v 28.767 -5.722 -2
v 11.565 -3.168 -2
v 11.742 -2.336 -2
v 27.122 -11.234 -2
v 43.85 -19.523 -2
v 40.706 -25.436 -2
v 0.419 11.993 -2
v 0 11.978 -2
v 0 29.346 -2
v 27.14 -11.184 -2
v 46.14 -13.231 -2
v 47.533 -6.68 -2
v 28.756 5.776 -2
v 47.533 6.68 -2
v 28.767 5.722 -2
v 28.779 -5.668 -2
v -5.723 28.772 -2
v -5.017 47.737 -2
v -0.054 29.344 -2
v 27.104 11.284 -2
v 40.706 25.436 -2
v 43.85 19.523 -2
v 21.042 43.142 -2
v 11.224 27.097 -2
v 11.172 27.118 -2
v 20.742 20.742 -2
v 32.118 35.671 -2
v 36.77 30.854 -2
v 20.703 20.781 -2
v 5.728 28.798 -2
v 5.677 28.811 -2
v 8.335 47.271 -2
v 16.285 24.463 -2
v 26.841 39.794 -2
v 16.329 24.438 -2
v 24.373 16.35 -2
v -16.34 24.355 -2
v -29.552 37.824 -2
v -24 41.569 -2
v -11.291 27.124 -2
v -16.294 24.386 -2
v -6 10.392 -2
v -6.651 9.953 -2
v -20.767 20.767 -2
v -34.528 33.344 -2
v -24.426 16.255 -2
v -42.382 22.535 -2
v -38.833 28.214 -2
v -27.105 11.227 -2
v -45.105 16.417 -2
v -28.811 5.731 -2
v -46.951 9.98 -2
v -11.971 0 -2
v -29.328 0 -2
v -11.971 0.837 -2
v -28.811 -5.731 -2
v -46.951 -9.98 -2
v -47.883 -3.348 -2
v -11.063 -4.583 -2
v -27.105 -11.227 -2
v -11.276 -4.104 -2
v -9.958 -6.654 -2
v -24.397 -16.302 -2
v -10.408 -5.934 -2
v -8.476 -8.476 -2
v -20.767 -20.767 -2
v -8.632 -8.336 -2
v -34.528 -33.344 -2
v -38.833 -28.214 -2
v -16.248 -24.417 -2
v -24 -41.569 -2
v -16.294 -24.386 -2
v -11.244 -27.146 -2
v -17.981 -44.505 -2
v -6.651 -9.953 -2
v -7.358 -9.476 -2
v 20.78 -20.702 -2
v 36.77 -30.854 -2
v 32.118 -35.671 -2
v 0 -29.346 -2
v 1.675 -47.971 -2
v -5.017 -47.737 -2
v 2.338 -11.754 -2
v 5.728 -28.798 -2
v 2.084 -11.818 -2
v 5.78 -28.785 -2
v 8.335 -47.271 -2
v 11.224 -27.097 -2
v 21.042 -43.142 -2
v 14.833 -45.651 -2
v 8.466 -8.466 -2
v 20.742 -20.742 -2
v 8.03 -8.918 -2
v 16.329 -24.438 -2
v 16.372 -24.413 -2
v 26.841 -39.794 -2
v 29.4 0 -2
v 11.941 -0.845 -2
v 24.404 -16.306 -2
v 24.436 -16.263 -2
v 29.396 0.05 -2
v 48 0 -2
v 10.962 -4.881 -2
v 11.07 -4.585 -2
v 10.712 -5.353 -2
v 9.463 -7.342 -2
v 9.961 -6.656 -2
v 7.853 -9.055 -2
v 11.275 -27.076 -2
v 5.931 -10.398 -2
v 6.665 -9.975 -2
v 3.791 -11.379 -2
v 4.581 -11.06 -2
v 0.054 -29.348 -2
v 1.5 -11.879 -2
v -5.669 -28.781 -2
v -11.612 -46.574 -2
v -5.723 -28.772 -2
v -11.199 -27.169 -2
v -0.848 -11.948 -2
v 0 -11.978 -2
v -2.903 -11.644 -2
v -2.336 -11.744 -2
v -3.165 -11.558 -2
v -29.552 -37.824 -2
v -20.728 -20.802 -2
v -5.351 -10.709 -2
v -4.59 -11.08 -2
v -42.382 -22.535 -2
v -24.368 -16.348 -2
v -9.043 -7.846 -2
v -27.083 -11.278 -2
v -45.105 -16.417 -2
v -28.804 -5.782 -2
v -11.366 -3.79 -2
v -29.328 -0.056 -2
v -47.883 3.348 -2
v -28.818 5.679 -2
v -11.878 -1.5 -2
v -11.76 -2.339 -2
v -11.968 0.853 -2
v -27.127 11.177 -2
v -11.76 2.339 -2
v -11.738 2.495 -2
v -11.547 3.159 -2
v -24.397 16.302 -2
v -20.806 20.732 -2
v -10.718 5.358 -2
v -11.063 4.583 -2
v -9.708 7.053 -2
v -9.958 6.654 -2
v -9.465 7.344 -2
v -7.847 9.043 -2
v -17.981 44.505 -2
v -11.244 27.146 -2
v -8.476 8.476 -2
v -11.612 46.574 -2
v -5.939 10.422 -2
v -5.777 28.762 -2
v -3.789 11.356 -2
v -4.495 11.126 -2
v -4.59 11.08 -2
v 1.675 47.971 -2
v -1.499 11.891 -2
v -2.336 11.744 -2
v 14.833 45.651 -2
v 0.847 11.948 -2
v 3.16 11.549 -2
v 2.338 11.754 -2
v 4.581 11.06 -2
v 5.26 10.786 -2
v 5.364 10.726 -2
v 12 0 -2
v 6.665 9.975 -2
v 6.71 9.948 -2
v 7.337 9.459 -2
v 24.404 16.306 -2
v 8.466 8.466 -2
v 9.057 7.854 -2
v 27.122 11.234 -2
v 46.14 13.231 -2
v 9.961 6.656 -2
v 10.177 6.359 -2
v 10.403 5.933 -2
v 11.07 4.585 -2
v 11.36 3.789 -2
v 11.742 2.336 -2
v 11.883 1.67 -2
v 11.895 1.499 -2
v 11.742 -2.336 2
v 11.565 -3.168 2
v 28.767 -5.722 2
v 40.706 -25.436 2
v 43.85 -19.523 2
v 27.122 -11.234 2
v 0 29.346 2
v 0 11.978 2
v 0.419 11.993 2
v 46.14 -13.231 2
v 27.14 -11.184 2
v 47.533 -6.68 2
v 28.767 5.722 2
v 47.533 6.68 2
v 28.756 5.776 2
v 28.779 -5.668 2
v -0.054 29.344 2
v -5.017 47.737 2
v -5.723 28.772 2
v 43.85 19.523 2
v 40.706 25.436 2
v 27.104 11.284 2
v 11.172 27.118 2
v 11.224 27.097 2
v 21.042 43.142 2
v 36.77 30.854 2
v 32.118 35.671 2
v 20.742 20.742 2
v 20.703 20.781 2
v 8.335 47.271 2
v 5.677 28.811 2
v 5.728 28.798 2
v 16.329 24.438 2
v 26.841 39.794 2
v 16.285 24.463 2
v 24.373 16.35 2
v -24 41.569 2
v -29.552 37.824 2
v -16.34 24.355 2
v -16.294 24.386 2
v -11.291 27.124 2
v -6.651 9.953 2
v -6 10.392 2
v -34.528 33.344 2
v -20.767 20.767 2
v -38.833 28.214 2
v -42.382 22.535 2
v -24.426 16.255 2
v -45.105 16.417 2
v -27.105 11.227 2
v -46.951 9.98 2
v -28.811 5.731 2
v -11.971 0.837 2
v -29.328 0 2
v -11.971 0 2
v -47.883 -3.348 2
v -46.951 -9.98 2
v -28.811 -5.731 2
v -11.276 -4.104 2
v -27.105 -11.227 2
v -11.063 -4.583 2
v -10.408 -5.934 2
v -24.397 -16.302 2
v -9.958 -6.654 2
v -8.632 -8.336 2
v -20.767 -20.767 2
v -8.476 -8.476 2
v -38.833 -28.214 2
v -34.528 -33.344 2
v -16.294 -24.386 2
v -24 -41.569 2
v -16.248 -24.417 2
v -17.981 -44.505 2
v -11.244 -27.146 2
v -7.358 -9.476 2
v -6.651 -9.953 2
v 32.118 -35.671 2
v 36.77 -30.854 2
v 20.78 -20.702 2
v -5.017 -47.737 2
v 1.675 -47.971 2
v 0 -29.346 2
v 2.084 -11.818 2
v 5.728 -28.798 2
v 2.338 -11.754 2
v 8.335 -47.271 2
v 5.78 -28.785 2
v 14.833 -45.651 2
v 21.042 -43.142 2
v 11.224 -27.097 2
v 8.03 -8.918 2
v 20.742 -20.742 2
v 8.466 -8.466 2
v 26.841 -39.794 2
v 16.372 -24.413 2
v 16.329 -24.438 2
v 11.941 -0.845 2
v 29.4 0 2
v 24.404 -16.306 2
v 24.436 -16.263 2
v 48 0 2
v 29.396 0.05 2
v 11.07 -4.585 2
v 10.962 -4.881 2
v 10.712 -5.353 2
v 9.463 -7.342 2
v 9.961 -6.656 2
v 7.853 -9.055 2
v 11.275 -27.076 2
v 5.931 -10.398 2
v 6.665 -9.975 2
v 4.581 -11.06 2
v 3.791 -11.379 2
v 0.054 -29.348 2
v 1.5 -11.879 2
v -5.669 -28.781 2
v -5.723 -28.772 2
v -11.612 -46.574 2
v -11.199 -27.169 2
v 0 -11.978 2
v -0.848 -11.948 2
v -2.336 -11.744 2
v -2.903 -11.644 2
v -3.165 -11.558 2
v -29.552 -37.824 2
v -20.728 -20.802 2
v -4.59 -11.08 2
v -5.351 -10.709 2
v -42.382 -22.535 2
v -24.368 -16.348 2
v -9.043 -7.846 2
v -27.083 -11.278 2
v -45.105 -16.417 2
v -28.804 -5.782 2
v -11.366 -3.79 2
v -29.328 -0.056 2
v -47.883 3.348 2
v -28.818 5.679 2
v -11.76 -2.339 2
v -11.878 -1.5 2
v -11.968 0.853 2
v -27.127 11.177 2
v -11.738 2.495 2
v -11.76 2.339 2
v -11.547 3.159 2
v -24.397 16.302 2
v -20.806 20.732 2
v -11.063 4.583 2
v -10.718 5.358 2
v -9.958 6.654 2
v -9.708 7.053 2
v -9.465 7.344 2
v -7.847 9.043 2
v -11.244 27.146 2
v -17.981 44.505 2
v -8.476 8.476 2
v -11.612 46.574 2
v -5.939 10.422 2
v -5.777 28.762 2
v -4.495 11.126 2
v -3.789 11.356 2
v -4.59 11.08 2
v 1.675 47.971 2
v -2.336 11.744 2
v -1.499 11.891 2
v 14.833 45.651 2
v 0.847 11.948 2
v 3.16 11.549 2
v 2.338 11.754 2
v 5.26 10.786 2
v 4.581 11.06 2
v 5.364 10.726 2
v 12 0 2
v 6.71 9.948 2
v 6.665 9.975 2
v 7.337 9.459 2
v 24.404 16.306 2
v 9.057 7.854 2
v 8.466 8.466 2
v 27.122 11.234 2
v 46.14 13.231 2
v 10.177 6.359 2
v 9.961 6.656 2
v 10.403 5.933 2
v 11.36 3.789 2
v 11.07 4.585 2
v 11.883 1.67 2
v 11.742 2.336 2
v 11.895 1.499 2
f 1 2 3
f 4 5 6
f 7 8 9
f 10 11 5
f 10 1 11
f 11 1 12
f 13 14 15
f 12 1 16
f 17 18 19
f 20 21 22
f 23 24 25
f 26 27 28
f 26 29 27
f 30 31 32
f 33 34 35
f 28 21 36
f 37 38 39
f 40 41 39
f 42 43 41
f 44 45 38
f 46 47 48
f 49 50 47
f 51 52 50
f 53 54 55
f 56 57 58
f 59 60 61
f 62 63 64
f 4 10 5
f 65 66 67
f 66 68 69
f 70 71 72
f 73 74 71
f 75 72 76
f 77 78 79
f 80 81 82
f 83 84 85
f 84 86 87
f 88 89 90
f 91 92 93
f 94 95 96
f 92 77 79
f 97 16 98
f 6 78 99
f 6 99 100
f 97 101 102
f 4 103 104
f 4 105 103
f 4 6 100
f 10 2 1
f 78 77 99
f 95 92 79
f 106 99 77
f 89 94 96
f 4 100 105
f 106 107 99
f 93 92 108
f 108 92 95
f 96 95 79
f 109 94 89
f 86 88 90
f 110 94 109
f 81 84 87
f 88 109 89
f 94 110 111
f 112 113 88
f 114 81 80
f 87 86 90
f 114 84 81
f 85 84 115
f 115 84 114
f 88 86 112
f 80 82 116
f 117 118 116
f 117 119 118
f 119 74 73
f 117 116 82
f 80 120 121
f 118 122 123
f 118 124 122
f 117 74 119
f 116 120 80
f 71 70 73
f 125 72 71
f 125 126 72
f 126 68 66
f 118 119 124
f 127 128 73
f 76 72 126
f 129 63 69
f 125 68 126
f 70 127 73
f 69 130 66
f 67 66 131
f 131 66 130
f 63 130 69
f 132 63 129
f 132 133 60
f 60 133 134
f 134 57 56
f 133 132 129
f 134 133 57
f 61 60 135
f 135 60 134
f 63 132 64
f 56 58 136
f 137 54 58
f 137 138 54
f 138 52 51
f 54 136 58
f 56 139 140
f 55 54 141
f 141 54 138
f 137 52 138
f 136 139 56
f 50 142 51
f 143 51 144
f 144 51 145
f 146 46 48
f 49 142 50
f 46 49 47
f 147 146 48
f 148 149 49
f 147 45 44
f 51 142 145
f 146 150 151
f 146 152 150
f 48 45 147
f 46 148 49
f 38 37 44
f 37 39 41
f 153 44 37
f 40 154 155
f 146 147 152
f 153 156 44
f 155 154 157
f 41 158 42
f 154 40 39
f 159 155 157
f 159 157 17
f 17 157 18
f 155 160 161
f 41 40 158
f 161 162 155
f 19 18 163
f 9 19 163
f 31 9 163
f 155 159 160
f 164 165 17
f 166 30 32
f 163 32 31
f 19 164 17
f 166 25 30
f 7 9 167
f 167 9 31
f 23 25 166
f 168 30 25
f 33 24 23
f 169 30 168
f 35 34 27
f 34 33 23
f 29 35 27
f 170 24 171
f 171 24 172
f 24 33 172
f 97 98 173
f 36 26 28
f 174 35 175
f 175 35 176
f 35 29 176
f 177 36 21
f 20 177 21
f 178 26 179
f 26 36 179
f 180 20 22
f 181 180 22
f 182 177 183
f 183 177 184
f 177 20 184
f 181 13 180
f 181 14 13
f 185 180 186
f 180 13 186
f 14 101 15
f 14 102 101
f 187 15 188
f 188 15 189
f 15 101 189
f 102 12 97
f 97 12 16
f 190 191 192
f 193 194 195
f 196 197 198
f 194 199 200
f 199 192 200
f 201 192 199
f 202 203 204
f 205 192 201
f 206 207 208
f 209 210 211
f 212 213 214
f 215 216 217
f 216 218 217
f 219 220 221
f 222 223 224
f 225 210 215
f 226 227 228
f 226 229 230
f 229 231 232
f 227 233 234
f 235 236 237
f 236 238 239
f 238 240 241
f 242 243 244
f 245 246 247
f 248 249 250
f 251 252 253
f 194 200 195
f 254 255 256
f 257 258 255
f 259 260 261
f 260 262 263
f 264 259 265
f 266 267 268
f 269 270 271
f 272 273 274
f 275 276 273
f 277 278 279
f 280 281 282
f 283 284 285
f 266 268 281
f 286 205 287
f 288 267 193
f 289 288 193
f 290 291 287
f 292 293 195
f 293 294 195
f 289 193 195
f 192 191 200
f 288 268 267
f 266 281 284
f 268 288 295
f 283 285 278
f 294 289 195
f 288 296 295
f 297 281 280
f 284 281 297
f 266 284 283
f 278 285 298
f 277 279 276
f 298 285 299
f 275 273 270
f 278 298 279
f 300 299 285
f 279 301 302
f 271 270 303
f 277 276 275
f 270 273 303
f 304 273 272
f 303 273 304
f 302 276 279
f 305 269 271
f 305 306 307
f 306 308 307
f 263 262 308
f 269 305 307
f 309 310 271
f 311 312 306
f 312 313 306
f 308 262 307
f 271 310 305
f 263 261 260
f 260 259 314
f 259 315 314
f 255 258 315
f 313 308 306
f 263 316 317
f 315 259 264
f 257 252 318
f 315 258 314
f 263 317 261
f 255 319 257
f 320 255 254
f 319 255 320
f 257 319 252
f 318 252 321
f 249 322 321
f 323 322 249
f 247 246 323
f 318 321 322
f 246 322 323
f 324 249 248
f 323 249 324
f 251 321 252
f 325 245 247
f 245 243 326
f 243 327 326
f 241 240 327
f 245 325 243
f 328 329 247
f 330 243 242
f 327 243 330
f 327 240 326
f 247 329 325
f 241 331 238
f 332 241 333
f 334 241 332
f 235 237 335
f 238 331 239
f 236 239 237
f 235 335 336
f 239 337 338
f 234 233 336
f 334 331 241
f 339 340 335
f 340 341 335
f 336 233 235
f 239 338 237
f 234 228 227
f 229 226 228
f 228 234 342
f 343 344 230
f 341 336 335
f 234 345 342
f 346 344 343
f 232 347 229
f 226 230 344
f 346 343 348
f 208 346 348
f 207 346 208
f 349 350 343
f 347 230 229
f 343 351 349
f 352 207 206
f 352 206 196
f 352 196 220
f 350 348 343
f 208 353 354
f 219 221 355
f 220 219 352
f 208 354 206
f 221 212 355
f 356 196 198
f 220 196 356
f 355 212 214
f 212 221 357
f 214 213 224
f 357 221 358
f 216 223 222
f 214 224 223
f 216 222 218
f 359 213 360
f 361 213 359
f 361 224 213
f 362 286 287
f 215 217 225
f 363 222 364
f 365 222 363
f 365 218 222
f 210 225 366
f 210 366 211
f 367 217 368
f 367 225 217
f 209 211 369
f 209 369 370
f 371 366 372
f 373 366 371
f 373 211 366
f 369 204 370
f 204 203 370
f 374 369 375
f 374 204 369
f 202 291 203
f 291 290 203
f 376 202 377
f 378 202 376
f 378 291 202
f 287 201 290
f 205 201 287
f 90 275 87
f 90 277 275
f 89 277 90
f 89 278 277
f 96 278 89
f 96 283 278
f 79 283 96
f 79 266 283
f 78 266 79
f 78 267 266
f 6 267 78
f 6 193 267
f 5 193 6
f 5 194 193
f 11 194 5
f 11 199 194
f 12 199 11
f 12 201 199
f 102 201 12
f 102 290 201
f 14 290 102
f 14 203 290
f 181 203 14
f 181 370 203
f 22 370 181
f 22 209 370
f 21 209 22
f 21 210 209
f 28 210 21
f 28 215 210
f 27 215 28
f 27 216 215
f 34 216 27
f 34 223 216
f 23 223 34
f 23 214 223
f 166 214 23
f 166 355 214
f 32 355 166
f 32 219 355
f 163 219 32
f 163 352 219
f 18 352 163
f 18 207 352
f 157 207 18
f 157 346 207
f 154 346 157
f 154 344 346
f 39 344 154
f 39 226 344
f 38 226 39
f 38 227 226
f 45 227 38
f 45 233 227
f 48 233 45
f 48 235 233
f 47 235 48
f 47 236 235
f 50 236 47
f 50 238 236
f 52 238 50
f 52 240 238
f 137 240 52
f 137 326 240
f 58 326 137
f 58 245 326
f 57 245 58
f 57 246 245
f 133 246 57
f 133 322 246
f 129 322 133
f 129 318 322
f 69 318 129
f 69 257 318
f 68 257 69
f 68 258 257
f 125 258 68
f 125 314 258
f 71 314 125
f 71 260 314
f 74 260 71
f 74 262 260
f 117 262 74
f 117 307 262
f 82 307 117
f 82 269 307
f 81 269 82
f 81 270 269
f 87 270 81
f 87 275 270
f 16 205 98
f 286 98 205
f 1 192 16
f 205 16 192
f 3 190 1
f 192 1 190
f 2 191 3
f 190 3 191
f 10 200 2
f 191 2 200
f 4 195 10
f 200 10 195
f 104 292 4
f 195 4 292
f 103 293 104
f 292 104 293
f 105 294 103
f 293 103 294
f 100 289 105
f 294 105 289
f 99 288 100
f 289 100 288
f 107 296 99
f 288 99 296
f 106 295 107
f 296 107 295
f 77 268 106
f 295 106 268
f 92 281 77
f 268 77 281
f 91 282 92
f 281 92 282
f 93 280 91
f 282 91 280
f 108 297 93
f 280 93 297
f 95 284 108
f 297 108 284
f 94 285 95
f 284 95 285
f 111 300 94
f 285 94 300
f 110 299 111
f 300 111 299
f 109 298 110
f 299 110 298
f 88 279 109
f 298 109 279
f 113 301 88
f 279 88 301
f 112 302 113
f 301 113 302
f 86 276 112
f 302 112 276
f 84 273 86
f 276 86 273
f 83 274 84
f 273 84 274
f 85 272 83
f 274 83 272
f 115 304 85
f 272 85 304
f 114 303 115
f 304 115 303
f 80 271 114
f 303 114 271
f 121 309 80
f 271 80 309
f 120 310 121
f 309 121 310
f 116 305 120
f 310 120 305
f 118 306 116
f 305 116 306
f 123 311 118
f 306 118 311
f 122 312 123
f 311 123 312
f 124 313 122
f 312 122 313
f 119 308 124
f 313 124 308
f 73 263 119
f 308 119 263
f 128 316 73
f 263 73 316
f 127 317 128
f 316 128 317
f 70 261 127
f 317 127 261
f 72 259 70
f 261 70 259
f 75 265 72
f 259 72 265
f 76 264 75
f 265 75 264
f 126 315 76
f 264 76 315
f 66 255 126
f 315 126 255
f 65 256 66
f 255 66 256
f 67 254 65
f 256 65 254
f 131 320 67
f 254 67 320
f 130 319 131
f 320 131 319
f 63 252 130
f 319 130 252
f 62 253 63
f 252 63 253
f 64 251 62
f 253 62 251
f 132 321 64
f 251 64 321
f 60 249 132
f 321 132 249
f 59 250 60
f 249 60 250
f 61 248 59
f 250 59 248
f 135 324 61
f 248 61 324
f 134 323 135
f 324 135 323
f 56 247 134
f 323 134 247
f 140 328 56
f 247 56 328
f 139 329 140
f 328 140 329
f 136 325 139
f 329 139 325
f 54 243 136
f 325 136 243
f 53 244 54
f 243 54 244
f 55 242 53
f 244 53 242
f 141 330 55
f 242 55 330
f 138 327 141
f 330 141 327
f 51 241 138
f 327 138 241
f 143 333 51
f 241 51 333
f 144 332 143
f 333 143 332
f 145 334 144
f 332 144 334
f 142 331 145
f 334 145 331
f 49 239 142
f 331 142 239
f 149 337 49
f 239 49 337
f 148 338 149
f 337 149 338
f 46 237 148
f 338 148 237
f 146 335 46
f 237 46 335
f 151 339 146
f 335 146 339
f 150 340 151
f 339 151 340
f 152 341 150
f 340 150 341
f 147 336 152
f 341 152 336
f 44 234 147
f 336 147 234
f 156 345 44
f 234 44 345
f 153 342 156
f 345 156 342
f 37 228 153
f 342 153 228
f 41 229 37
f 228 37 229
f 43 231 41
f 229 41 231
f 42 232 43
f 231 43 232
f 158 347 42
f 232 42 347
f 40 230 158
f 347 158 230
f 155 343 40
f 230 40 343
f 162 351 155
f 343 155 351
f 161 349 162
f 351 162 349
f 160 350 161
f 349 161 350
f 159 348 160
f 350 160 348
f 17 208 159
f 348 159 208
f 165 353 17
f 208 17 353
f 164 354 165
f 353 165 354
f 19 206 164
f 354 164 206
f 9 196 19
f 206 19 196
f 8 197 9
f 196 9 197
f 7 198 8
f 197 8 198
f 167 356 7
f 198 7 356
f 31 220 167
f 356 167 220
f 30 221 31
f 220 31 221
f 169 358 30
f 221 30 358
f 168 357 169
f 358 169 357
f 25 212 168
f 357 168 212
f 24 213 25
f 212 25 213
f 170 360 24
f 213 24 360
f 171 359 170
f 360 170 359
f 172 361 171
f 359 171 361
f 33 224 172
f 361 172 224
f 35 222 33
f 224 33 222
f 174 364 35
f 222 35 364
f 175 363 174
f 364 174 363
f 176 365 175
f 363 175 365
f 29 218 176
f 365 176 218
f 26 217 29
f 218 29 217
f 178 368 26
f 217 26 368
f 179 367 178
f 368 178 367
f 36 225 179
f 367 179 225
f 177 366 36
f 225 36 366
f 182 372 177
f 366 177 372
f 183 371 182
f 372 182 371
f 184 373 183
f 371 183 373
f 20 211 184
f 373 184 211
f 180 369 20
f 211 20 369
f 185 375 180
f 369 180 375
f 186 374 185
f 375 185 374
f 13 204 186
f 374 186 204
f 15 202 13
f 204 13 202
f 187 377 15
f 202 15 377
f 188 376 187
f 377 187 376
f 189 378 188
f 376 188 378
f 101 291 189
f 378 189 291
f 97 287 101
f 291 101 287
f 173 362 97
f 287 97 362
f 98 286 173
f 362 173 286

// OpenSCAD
tube_diameter = 24;
separator_height = 4;
separator_diameter = tube_diameter * 4;
separator_twist = 0;
tooth_count = 32;
tooth_outer_diameter = (separator_diameter - tube_diameter) / 2 + tube_diameter;
tooth_inner_diameter = tube_diameter * 0.75;

$fn = 360/tooth_count * 4;

module tooth()
{
	angle=360/tooth_count;
	for (i = [0:angle:360]) {
		rotate([0,0,i]) polygon([[0,tooth_inner_diameter/2*cos(angle/4)],
				[0,tooth_outer_diameter/2],
				[tooth_outer_diameter/2*sin(angle),tooth_outer_diameter/2*cos(angle)]]);
	}
}

module main()
{
	linear_extrude(height=separator_height,center=true,twist=separator_twist) {
		difference() {
			tooth();
			circle(d=tube_diameter);
		}
		difference() {
			circle(d=separator_diameter);
			circle(d=tooth_outer_diameter*0.98);
		}
	}
}

main();
